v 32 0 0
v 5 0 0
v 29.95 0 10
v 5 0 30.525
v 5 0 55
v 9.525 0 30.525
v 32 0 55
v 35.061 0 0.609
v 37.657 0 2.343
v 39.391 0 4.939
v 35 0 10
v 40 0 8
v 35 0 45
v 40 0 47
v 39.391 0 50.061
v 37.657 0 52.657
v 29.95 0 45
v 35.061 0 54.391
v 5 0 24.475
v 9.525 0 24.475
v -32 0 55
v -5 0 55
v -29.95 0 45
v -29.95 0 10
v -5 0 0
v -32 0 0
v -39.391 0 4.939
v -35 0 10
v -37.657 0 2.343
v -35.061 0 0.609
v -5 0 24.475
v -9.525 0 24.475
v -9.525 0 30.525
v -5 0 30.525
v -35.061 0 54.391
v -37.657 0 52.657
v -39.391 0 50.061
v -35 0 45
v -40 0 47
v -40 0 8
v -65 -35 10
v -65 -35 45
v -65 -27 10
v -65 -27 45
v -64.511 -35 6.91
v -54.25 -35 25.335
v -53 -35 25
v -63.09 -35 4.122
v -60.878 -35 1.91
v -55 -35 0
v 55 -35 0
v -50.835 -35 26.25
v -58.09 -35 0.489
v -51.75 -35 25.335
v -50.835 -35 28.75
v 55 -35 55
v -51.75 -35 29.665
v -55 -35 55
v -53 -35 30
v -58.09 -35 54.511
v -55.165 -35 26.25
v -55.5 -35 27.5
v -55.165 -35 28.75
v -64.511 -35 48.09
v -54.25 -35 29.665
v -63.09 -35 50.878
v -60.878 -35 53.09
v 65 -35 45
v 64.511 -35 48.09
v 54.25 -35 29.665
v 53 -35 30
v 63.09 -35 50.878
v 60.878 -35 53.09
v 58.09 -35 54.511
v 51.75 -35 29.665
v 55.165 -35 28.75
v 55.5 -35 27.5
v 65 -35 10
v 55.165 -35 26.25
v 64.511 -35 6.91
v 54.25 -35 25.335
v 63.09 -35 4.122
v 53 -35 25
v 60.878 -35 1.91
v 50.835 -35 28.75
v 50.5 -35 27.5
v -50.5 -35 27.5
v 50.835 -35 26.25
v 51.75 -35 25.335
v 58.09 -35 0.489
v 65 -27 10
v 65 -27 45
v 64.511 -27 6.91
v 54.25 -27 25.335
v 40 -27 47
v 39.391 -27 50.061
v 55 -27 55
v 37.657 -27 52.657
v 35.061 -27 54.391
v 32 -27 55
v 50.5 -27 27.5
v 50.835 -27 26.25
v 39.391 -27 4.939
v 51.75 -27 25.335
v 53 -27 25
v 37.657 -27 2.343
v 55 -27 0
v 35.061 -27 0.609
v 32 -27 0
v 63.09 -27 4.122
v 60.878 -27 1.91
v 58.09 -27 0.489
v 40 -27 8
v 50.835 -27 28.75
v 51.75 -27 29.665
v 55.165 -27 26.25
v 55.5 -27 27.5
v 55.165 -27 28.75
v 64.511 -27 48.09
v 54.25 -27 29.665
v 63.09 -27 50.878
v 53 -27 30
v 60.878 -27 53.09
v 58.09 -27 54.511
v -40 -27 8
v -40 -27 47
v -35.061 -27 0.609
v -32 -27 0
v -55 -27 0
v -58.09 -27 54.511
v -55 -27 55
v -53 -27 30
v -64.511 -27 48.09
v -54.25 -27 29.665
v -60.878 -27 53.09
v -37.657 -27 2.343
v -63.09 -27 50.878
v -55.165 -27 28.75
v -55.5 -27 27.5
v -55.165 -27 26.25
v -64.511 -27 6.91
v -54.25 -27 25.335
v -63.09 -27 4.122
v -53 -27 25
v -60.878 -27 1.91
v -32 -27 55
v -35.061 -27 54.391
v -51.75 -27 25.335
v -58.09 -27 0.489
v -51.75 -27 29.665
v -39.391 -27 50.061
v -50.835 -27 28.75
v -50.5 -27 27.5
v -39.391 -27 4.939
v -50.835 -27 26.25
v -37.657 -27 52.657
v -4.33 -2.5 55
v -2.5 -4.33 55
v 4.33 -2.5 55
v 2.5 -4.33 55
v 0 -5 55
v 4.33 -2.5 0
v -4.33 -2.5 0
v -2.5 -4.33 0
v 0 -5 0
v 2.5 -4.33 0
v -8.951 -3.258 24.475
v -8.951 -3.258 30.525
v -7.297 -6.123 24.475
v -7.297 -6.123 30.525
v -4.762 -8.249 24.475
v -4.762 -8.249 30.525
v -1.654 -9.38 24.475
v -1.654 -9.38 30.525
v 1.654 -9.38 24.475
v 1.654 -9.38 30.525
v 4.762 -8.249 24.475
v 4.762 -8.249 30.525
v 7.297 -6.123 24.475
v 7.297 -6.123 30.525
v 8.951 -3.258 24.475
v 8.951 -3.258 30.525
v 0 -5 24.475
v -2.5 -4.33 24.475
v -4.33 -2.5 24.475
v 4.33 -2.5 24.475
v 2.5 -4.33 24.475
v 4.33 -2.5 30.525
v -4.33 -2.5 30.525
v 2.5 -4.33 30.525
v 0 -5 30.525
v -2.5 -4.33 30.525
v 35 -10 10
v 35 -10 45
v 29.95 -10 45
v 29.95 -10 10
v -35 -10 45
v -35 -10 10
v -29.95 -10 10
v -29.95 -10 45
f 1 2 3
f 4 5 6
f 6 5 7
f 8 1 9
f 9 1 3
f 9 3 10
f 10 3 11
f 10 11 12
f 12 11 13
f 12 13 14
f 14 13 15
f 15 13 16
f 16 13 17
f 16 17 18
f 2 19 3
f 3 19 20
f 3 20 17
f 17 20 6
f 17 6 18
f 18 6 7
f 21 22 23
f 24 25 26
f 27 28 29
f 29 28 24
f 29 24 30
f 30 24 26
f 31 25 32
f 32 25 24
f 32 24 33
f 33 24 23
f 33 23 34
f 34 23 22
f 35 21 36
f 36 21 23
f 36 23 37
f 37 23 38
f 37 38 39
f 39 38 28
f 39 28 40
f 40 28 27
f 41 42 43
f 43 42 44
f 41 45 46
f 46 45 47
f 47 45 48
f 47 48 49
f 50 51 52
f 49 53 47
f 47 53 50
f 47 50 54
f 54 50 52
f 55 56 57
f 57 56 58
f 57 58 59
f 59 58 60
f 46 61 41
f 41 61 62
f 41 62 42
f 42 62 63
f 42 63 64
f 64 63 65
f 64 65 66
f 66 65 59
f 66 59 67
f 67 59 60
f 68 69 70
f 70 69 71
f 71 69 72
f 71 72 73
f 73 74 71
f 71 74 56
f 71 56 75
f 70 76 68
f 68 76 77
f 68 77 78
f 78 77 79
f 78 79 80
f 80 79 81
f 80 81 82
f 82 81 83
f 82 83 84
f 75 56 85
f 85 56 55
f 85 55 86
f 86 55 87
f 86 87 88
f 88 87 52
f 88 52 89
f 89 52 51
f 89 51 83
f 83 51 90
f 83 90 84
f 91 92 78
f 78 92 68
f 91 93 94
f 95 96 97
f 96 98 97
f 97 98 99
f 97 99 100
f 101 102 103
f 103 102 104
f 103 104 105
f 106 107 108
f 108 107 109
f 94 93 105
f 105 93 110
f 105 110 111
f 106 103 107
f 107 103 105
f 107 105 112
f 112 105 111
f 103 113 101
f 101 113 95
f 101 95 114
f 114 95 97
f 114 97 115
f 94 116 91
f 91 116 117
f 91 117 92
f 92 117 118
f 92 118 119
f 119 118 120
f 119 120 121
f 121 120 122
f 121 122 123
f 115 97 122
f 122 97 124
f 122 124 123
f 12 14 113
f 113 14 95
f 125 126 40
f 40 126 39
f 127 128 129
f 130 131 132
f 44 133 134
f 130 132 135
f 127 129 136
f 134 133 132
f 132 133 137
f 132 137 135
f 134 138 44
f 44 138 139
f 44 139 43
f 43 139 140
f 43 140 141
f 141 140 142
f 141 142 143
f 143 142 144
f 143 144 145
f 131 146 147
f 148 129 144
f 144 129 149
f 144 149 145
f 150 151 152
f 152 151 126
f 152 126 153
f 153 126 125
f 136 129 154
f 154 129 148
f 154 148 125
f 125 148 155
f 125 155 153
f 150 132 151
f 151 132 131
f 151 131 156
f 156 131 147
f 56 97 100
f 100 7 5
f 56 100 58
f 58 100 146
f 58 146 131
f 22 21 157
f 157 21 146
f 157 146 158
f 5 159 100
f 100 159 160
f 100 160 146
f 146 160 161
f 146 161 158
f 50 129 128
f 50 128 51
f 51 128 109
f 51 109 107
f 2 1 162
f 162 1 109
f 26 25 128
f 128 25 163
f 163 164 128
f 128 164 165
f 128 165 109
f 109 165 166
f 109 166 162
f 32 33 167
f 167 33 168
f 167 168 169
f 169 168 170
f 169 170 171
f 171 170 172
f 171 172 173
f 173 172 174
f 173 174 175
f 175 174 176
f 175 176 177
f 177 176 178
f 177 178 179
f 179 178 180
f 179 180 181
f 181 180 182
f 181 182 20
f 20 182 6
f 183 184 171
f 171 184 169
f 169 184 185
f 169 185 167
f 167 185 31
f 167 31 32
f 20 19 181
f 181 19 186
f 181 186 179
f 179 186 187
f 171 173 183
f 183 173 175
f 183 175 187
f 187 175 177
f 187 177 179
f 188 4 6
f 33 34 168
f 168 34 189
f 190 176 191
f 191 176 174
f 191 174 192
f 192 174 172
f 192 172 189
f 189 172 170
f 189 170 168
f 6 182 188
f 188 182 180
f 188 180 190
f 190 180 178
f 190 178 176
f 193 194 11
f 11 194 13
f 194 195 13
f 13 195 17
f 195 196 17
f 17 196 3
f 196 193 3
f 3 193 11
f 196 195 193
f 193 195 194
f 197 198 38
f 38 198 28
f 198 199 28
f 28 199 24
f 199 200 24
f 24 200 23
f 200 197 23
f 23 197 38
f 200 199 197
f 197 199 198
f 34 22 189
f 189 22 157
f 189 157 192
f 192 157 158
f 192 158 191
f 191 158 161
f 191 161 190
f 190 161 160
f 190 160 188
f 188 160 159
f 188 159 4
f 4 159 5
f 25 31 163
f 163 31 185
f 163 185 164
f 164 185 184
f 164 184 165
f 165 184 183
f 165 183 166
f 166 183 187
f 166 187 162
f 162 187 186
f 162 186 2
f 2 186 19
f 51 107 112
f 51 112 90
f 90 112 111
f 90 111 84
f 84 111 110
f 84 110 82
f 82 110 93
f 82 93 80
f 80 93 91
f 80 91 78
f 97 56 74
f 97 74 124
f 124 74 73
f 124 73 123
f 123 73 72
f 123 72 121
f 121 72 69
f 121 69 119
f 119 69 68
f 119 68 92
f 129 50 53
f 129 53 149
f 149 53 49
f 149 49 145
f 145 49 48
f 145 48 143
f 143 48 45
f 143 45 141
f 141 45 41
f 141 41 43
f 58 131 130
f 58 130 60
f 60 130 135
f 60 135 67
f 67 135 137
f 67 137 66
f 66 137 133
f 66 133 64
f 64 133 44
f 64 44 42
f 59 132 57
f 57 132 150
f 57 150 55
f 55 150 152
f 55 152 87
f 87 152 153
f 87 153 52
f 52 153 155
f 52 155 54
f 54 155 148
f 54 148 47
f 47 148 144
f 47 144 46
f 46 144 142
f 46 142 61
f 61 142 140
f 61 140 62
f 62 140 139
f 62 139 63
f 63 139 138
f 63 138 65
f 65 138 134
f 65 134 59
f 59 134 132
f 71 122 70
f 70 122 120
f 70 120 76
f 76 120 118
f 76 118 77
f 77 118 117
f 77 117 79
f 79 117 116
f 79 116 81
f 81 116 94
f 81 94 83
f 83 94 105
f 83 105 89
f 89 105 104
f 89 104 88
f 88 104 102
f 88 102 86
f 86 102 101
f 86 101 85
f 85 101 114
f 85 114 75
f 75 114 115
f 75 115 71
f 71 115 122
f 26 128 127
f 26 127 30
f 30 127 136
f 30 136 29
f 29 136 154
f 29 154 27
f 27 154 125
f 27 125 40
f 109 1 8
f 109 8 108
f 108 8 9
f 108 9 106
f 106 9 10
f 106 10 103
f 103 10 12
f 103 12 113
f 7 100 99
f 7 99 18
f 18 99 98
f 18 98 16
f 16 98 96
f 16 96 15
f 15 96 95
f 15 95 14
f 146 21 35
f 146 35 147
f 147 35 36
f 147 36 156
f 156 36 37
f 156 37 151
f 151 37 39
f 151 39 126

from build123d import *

# Parameters (mm, degrees)
SALIENTE_EXTRUIR1_DEPTH    = 55
CROQUIS2_R                 = 9.525
CORTAR_EXTRUIR1_DEPTH      = 3.025
CROQUIS3_W                 = 5.05
CROQUIS3_H                 = 35
CORTAR_EXTRUIR2_DEPTH      = 10
CORTAR_EXTRUIR3_DEPTH      = 79.779756283
CORTAR_EXTRUIR3_DEPTH_BACK = 79.779756283
CROQUIS4_R                 = 5
REDONDEO1_R                = 10
CROQUIS5_R                 = 2.5
CORTAR_EXTRUIR4_DEPTH      = 90.32524839
REDONDEO2_R                = 8


with BuildPart() as part:
    # Croquis1 → Saliente-Extruir1 (new body)
    with BuildSketch(Plane.XY):
        Polygon((-40, 0), (40, 0), (40, -27), (65, -27), (65, -35), (40, -35), (-40, -35), (-65, -35), (-65, -27), (-40, -27), align=None)
    extrude(amount=SALIENTE_EXTRUIR1_DEPTH)

    # Croquis2 → Cortar-Extruir1 (cut, symmetric)
    with BuildSketch(Plane.XY.offset(27.5)):
        Circle(CROQUIS2_R)
    extrude(amount=CORTAR_EXTRUIR1_DEPTH, both=True, mode=Mode.SUBTRACT)

    # Croquis3 → Cortar-Extruir2 (cut)
    with BuildSketch(Plane(origin=(0, 0, 0), x_dir=(1, 0, 0), z_dir=(0, 1, 0))):
        with Locations((-32.475, -27.5)):
            Rectangle(CROQUIS3_W, CROQUIS3_H)
        with Locations((32.475, -27.5)):
            Rectangle(CROQUIS3_W, CROQUIS3_H)
    extrude(amount=-CORTAR_EXTRUIR2_DEPTH, mode=Mode.SUBTRACT)

    # Croquis4 → Cortar-Extruir3 (cut, two sides: drawn at the far end of the back side and taken through both)
    with BuildSketch(Plane.XY.offset(27.5).offset(-CORTAR_EXTRUIR3_DEPTH_BACK)):
        Circle(CROQUIS4_R)
    extrude(amount=CORTAR_EXTRUIR3_DEPTH + CORTAR_EXTRUIR3_DEPTH_BACK, mode=Mode.SUBTRACT)

    # Redondeo1
    redondeo1_edges = [part.edges().sort_by_distance(p)[0] for p in [
        (65, -31, 0),
        (-65, -31, 0),
        (65, -31, 55),
        (-65, -31, 55),
    ]]
    fillet(redondeo1_edges, radius=REDONDEO1_R)

    # Croquis5 → Cortar-Extruir4 (cut, through all)
    with BuildSketch(Plane(origin=(0, -27, 0), x_dir=(1, 0, 0), z_dir=(0, 1, 0))):
        with Locations(Location((-53, -27.5, 0), (0, 0, 270))):
            Circle(CROQUIS5_R)
        with Locations(Location((53, -27.5, 0), (0, 0, 90))):
            Circle(CROQUIS5_R)
    extrude(amount=-CORTAR_EXTRUIR4_DEPTH, mode=Mode.SUBTRACT)

    # Redondeo2
    redondeo2_edges = [part.edges().sort_by_distance(p)[0] for p in [
        (-40, -13.5, 0),
        (40, -13.5, 0),
        (40, -13.5, 55),
        (-40, -13.5, 55),
    ]]
    fillet(redondeo2_edges, radius=REDONDEO2_R)


solid = part.part
